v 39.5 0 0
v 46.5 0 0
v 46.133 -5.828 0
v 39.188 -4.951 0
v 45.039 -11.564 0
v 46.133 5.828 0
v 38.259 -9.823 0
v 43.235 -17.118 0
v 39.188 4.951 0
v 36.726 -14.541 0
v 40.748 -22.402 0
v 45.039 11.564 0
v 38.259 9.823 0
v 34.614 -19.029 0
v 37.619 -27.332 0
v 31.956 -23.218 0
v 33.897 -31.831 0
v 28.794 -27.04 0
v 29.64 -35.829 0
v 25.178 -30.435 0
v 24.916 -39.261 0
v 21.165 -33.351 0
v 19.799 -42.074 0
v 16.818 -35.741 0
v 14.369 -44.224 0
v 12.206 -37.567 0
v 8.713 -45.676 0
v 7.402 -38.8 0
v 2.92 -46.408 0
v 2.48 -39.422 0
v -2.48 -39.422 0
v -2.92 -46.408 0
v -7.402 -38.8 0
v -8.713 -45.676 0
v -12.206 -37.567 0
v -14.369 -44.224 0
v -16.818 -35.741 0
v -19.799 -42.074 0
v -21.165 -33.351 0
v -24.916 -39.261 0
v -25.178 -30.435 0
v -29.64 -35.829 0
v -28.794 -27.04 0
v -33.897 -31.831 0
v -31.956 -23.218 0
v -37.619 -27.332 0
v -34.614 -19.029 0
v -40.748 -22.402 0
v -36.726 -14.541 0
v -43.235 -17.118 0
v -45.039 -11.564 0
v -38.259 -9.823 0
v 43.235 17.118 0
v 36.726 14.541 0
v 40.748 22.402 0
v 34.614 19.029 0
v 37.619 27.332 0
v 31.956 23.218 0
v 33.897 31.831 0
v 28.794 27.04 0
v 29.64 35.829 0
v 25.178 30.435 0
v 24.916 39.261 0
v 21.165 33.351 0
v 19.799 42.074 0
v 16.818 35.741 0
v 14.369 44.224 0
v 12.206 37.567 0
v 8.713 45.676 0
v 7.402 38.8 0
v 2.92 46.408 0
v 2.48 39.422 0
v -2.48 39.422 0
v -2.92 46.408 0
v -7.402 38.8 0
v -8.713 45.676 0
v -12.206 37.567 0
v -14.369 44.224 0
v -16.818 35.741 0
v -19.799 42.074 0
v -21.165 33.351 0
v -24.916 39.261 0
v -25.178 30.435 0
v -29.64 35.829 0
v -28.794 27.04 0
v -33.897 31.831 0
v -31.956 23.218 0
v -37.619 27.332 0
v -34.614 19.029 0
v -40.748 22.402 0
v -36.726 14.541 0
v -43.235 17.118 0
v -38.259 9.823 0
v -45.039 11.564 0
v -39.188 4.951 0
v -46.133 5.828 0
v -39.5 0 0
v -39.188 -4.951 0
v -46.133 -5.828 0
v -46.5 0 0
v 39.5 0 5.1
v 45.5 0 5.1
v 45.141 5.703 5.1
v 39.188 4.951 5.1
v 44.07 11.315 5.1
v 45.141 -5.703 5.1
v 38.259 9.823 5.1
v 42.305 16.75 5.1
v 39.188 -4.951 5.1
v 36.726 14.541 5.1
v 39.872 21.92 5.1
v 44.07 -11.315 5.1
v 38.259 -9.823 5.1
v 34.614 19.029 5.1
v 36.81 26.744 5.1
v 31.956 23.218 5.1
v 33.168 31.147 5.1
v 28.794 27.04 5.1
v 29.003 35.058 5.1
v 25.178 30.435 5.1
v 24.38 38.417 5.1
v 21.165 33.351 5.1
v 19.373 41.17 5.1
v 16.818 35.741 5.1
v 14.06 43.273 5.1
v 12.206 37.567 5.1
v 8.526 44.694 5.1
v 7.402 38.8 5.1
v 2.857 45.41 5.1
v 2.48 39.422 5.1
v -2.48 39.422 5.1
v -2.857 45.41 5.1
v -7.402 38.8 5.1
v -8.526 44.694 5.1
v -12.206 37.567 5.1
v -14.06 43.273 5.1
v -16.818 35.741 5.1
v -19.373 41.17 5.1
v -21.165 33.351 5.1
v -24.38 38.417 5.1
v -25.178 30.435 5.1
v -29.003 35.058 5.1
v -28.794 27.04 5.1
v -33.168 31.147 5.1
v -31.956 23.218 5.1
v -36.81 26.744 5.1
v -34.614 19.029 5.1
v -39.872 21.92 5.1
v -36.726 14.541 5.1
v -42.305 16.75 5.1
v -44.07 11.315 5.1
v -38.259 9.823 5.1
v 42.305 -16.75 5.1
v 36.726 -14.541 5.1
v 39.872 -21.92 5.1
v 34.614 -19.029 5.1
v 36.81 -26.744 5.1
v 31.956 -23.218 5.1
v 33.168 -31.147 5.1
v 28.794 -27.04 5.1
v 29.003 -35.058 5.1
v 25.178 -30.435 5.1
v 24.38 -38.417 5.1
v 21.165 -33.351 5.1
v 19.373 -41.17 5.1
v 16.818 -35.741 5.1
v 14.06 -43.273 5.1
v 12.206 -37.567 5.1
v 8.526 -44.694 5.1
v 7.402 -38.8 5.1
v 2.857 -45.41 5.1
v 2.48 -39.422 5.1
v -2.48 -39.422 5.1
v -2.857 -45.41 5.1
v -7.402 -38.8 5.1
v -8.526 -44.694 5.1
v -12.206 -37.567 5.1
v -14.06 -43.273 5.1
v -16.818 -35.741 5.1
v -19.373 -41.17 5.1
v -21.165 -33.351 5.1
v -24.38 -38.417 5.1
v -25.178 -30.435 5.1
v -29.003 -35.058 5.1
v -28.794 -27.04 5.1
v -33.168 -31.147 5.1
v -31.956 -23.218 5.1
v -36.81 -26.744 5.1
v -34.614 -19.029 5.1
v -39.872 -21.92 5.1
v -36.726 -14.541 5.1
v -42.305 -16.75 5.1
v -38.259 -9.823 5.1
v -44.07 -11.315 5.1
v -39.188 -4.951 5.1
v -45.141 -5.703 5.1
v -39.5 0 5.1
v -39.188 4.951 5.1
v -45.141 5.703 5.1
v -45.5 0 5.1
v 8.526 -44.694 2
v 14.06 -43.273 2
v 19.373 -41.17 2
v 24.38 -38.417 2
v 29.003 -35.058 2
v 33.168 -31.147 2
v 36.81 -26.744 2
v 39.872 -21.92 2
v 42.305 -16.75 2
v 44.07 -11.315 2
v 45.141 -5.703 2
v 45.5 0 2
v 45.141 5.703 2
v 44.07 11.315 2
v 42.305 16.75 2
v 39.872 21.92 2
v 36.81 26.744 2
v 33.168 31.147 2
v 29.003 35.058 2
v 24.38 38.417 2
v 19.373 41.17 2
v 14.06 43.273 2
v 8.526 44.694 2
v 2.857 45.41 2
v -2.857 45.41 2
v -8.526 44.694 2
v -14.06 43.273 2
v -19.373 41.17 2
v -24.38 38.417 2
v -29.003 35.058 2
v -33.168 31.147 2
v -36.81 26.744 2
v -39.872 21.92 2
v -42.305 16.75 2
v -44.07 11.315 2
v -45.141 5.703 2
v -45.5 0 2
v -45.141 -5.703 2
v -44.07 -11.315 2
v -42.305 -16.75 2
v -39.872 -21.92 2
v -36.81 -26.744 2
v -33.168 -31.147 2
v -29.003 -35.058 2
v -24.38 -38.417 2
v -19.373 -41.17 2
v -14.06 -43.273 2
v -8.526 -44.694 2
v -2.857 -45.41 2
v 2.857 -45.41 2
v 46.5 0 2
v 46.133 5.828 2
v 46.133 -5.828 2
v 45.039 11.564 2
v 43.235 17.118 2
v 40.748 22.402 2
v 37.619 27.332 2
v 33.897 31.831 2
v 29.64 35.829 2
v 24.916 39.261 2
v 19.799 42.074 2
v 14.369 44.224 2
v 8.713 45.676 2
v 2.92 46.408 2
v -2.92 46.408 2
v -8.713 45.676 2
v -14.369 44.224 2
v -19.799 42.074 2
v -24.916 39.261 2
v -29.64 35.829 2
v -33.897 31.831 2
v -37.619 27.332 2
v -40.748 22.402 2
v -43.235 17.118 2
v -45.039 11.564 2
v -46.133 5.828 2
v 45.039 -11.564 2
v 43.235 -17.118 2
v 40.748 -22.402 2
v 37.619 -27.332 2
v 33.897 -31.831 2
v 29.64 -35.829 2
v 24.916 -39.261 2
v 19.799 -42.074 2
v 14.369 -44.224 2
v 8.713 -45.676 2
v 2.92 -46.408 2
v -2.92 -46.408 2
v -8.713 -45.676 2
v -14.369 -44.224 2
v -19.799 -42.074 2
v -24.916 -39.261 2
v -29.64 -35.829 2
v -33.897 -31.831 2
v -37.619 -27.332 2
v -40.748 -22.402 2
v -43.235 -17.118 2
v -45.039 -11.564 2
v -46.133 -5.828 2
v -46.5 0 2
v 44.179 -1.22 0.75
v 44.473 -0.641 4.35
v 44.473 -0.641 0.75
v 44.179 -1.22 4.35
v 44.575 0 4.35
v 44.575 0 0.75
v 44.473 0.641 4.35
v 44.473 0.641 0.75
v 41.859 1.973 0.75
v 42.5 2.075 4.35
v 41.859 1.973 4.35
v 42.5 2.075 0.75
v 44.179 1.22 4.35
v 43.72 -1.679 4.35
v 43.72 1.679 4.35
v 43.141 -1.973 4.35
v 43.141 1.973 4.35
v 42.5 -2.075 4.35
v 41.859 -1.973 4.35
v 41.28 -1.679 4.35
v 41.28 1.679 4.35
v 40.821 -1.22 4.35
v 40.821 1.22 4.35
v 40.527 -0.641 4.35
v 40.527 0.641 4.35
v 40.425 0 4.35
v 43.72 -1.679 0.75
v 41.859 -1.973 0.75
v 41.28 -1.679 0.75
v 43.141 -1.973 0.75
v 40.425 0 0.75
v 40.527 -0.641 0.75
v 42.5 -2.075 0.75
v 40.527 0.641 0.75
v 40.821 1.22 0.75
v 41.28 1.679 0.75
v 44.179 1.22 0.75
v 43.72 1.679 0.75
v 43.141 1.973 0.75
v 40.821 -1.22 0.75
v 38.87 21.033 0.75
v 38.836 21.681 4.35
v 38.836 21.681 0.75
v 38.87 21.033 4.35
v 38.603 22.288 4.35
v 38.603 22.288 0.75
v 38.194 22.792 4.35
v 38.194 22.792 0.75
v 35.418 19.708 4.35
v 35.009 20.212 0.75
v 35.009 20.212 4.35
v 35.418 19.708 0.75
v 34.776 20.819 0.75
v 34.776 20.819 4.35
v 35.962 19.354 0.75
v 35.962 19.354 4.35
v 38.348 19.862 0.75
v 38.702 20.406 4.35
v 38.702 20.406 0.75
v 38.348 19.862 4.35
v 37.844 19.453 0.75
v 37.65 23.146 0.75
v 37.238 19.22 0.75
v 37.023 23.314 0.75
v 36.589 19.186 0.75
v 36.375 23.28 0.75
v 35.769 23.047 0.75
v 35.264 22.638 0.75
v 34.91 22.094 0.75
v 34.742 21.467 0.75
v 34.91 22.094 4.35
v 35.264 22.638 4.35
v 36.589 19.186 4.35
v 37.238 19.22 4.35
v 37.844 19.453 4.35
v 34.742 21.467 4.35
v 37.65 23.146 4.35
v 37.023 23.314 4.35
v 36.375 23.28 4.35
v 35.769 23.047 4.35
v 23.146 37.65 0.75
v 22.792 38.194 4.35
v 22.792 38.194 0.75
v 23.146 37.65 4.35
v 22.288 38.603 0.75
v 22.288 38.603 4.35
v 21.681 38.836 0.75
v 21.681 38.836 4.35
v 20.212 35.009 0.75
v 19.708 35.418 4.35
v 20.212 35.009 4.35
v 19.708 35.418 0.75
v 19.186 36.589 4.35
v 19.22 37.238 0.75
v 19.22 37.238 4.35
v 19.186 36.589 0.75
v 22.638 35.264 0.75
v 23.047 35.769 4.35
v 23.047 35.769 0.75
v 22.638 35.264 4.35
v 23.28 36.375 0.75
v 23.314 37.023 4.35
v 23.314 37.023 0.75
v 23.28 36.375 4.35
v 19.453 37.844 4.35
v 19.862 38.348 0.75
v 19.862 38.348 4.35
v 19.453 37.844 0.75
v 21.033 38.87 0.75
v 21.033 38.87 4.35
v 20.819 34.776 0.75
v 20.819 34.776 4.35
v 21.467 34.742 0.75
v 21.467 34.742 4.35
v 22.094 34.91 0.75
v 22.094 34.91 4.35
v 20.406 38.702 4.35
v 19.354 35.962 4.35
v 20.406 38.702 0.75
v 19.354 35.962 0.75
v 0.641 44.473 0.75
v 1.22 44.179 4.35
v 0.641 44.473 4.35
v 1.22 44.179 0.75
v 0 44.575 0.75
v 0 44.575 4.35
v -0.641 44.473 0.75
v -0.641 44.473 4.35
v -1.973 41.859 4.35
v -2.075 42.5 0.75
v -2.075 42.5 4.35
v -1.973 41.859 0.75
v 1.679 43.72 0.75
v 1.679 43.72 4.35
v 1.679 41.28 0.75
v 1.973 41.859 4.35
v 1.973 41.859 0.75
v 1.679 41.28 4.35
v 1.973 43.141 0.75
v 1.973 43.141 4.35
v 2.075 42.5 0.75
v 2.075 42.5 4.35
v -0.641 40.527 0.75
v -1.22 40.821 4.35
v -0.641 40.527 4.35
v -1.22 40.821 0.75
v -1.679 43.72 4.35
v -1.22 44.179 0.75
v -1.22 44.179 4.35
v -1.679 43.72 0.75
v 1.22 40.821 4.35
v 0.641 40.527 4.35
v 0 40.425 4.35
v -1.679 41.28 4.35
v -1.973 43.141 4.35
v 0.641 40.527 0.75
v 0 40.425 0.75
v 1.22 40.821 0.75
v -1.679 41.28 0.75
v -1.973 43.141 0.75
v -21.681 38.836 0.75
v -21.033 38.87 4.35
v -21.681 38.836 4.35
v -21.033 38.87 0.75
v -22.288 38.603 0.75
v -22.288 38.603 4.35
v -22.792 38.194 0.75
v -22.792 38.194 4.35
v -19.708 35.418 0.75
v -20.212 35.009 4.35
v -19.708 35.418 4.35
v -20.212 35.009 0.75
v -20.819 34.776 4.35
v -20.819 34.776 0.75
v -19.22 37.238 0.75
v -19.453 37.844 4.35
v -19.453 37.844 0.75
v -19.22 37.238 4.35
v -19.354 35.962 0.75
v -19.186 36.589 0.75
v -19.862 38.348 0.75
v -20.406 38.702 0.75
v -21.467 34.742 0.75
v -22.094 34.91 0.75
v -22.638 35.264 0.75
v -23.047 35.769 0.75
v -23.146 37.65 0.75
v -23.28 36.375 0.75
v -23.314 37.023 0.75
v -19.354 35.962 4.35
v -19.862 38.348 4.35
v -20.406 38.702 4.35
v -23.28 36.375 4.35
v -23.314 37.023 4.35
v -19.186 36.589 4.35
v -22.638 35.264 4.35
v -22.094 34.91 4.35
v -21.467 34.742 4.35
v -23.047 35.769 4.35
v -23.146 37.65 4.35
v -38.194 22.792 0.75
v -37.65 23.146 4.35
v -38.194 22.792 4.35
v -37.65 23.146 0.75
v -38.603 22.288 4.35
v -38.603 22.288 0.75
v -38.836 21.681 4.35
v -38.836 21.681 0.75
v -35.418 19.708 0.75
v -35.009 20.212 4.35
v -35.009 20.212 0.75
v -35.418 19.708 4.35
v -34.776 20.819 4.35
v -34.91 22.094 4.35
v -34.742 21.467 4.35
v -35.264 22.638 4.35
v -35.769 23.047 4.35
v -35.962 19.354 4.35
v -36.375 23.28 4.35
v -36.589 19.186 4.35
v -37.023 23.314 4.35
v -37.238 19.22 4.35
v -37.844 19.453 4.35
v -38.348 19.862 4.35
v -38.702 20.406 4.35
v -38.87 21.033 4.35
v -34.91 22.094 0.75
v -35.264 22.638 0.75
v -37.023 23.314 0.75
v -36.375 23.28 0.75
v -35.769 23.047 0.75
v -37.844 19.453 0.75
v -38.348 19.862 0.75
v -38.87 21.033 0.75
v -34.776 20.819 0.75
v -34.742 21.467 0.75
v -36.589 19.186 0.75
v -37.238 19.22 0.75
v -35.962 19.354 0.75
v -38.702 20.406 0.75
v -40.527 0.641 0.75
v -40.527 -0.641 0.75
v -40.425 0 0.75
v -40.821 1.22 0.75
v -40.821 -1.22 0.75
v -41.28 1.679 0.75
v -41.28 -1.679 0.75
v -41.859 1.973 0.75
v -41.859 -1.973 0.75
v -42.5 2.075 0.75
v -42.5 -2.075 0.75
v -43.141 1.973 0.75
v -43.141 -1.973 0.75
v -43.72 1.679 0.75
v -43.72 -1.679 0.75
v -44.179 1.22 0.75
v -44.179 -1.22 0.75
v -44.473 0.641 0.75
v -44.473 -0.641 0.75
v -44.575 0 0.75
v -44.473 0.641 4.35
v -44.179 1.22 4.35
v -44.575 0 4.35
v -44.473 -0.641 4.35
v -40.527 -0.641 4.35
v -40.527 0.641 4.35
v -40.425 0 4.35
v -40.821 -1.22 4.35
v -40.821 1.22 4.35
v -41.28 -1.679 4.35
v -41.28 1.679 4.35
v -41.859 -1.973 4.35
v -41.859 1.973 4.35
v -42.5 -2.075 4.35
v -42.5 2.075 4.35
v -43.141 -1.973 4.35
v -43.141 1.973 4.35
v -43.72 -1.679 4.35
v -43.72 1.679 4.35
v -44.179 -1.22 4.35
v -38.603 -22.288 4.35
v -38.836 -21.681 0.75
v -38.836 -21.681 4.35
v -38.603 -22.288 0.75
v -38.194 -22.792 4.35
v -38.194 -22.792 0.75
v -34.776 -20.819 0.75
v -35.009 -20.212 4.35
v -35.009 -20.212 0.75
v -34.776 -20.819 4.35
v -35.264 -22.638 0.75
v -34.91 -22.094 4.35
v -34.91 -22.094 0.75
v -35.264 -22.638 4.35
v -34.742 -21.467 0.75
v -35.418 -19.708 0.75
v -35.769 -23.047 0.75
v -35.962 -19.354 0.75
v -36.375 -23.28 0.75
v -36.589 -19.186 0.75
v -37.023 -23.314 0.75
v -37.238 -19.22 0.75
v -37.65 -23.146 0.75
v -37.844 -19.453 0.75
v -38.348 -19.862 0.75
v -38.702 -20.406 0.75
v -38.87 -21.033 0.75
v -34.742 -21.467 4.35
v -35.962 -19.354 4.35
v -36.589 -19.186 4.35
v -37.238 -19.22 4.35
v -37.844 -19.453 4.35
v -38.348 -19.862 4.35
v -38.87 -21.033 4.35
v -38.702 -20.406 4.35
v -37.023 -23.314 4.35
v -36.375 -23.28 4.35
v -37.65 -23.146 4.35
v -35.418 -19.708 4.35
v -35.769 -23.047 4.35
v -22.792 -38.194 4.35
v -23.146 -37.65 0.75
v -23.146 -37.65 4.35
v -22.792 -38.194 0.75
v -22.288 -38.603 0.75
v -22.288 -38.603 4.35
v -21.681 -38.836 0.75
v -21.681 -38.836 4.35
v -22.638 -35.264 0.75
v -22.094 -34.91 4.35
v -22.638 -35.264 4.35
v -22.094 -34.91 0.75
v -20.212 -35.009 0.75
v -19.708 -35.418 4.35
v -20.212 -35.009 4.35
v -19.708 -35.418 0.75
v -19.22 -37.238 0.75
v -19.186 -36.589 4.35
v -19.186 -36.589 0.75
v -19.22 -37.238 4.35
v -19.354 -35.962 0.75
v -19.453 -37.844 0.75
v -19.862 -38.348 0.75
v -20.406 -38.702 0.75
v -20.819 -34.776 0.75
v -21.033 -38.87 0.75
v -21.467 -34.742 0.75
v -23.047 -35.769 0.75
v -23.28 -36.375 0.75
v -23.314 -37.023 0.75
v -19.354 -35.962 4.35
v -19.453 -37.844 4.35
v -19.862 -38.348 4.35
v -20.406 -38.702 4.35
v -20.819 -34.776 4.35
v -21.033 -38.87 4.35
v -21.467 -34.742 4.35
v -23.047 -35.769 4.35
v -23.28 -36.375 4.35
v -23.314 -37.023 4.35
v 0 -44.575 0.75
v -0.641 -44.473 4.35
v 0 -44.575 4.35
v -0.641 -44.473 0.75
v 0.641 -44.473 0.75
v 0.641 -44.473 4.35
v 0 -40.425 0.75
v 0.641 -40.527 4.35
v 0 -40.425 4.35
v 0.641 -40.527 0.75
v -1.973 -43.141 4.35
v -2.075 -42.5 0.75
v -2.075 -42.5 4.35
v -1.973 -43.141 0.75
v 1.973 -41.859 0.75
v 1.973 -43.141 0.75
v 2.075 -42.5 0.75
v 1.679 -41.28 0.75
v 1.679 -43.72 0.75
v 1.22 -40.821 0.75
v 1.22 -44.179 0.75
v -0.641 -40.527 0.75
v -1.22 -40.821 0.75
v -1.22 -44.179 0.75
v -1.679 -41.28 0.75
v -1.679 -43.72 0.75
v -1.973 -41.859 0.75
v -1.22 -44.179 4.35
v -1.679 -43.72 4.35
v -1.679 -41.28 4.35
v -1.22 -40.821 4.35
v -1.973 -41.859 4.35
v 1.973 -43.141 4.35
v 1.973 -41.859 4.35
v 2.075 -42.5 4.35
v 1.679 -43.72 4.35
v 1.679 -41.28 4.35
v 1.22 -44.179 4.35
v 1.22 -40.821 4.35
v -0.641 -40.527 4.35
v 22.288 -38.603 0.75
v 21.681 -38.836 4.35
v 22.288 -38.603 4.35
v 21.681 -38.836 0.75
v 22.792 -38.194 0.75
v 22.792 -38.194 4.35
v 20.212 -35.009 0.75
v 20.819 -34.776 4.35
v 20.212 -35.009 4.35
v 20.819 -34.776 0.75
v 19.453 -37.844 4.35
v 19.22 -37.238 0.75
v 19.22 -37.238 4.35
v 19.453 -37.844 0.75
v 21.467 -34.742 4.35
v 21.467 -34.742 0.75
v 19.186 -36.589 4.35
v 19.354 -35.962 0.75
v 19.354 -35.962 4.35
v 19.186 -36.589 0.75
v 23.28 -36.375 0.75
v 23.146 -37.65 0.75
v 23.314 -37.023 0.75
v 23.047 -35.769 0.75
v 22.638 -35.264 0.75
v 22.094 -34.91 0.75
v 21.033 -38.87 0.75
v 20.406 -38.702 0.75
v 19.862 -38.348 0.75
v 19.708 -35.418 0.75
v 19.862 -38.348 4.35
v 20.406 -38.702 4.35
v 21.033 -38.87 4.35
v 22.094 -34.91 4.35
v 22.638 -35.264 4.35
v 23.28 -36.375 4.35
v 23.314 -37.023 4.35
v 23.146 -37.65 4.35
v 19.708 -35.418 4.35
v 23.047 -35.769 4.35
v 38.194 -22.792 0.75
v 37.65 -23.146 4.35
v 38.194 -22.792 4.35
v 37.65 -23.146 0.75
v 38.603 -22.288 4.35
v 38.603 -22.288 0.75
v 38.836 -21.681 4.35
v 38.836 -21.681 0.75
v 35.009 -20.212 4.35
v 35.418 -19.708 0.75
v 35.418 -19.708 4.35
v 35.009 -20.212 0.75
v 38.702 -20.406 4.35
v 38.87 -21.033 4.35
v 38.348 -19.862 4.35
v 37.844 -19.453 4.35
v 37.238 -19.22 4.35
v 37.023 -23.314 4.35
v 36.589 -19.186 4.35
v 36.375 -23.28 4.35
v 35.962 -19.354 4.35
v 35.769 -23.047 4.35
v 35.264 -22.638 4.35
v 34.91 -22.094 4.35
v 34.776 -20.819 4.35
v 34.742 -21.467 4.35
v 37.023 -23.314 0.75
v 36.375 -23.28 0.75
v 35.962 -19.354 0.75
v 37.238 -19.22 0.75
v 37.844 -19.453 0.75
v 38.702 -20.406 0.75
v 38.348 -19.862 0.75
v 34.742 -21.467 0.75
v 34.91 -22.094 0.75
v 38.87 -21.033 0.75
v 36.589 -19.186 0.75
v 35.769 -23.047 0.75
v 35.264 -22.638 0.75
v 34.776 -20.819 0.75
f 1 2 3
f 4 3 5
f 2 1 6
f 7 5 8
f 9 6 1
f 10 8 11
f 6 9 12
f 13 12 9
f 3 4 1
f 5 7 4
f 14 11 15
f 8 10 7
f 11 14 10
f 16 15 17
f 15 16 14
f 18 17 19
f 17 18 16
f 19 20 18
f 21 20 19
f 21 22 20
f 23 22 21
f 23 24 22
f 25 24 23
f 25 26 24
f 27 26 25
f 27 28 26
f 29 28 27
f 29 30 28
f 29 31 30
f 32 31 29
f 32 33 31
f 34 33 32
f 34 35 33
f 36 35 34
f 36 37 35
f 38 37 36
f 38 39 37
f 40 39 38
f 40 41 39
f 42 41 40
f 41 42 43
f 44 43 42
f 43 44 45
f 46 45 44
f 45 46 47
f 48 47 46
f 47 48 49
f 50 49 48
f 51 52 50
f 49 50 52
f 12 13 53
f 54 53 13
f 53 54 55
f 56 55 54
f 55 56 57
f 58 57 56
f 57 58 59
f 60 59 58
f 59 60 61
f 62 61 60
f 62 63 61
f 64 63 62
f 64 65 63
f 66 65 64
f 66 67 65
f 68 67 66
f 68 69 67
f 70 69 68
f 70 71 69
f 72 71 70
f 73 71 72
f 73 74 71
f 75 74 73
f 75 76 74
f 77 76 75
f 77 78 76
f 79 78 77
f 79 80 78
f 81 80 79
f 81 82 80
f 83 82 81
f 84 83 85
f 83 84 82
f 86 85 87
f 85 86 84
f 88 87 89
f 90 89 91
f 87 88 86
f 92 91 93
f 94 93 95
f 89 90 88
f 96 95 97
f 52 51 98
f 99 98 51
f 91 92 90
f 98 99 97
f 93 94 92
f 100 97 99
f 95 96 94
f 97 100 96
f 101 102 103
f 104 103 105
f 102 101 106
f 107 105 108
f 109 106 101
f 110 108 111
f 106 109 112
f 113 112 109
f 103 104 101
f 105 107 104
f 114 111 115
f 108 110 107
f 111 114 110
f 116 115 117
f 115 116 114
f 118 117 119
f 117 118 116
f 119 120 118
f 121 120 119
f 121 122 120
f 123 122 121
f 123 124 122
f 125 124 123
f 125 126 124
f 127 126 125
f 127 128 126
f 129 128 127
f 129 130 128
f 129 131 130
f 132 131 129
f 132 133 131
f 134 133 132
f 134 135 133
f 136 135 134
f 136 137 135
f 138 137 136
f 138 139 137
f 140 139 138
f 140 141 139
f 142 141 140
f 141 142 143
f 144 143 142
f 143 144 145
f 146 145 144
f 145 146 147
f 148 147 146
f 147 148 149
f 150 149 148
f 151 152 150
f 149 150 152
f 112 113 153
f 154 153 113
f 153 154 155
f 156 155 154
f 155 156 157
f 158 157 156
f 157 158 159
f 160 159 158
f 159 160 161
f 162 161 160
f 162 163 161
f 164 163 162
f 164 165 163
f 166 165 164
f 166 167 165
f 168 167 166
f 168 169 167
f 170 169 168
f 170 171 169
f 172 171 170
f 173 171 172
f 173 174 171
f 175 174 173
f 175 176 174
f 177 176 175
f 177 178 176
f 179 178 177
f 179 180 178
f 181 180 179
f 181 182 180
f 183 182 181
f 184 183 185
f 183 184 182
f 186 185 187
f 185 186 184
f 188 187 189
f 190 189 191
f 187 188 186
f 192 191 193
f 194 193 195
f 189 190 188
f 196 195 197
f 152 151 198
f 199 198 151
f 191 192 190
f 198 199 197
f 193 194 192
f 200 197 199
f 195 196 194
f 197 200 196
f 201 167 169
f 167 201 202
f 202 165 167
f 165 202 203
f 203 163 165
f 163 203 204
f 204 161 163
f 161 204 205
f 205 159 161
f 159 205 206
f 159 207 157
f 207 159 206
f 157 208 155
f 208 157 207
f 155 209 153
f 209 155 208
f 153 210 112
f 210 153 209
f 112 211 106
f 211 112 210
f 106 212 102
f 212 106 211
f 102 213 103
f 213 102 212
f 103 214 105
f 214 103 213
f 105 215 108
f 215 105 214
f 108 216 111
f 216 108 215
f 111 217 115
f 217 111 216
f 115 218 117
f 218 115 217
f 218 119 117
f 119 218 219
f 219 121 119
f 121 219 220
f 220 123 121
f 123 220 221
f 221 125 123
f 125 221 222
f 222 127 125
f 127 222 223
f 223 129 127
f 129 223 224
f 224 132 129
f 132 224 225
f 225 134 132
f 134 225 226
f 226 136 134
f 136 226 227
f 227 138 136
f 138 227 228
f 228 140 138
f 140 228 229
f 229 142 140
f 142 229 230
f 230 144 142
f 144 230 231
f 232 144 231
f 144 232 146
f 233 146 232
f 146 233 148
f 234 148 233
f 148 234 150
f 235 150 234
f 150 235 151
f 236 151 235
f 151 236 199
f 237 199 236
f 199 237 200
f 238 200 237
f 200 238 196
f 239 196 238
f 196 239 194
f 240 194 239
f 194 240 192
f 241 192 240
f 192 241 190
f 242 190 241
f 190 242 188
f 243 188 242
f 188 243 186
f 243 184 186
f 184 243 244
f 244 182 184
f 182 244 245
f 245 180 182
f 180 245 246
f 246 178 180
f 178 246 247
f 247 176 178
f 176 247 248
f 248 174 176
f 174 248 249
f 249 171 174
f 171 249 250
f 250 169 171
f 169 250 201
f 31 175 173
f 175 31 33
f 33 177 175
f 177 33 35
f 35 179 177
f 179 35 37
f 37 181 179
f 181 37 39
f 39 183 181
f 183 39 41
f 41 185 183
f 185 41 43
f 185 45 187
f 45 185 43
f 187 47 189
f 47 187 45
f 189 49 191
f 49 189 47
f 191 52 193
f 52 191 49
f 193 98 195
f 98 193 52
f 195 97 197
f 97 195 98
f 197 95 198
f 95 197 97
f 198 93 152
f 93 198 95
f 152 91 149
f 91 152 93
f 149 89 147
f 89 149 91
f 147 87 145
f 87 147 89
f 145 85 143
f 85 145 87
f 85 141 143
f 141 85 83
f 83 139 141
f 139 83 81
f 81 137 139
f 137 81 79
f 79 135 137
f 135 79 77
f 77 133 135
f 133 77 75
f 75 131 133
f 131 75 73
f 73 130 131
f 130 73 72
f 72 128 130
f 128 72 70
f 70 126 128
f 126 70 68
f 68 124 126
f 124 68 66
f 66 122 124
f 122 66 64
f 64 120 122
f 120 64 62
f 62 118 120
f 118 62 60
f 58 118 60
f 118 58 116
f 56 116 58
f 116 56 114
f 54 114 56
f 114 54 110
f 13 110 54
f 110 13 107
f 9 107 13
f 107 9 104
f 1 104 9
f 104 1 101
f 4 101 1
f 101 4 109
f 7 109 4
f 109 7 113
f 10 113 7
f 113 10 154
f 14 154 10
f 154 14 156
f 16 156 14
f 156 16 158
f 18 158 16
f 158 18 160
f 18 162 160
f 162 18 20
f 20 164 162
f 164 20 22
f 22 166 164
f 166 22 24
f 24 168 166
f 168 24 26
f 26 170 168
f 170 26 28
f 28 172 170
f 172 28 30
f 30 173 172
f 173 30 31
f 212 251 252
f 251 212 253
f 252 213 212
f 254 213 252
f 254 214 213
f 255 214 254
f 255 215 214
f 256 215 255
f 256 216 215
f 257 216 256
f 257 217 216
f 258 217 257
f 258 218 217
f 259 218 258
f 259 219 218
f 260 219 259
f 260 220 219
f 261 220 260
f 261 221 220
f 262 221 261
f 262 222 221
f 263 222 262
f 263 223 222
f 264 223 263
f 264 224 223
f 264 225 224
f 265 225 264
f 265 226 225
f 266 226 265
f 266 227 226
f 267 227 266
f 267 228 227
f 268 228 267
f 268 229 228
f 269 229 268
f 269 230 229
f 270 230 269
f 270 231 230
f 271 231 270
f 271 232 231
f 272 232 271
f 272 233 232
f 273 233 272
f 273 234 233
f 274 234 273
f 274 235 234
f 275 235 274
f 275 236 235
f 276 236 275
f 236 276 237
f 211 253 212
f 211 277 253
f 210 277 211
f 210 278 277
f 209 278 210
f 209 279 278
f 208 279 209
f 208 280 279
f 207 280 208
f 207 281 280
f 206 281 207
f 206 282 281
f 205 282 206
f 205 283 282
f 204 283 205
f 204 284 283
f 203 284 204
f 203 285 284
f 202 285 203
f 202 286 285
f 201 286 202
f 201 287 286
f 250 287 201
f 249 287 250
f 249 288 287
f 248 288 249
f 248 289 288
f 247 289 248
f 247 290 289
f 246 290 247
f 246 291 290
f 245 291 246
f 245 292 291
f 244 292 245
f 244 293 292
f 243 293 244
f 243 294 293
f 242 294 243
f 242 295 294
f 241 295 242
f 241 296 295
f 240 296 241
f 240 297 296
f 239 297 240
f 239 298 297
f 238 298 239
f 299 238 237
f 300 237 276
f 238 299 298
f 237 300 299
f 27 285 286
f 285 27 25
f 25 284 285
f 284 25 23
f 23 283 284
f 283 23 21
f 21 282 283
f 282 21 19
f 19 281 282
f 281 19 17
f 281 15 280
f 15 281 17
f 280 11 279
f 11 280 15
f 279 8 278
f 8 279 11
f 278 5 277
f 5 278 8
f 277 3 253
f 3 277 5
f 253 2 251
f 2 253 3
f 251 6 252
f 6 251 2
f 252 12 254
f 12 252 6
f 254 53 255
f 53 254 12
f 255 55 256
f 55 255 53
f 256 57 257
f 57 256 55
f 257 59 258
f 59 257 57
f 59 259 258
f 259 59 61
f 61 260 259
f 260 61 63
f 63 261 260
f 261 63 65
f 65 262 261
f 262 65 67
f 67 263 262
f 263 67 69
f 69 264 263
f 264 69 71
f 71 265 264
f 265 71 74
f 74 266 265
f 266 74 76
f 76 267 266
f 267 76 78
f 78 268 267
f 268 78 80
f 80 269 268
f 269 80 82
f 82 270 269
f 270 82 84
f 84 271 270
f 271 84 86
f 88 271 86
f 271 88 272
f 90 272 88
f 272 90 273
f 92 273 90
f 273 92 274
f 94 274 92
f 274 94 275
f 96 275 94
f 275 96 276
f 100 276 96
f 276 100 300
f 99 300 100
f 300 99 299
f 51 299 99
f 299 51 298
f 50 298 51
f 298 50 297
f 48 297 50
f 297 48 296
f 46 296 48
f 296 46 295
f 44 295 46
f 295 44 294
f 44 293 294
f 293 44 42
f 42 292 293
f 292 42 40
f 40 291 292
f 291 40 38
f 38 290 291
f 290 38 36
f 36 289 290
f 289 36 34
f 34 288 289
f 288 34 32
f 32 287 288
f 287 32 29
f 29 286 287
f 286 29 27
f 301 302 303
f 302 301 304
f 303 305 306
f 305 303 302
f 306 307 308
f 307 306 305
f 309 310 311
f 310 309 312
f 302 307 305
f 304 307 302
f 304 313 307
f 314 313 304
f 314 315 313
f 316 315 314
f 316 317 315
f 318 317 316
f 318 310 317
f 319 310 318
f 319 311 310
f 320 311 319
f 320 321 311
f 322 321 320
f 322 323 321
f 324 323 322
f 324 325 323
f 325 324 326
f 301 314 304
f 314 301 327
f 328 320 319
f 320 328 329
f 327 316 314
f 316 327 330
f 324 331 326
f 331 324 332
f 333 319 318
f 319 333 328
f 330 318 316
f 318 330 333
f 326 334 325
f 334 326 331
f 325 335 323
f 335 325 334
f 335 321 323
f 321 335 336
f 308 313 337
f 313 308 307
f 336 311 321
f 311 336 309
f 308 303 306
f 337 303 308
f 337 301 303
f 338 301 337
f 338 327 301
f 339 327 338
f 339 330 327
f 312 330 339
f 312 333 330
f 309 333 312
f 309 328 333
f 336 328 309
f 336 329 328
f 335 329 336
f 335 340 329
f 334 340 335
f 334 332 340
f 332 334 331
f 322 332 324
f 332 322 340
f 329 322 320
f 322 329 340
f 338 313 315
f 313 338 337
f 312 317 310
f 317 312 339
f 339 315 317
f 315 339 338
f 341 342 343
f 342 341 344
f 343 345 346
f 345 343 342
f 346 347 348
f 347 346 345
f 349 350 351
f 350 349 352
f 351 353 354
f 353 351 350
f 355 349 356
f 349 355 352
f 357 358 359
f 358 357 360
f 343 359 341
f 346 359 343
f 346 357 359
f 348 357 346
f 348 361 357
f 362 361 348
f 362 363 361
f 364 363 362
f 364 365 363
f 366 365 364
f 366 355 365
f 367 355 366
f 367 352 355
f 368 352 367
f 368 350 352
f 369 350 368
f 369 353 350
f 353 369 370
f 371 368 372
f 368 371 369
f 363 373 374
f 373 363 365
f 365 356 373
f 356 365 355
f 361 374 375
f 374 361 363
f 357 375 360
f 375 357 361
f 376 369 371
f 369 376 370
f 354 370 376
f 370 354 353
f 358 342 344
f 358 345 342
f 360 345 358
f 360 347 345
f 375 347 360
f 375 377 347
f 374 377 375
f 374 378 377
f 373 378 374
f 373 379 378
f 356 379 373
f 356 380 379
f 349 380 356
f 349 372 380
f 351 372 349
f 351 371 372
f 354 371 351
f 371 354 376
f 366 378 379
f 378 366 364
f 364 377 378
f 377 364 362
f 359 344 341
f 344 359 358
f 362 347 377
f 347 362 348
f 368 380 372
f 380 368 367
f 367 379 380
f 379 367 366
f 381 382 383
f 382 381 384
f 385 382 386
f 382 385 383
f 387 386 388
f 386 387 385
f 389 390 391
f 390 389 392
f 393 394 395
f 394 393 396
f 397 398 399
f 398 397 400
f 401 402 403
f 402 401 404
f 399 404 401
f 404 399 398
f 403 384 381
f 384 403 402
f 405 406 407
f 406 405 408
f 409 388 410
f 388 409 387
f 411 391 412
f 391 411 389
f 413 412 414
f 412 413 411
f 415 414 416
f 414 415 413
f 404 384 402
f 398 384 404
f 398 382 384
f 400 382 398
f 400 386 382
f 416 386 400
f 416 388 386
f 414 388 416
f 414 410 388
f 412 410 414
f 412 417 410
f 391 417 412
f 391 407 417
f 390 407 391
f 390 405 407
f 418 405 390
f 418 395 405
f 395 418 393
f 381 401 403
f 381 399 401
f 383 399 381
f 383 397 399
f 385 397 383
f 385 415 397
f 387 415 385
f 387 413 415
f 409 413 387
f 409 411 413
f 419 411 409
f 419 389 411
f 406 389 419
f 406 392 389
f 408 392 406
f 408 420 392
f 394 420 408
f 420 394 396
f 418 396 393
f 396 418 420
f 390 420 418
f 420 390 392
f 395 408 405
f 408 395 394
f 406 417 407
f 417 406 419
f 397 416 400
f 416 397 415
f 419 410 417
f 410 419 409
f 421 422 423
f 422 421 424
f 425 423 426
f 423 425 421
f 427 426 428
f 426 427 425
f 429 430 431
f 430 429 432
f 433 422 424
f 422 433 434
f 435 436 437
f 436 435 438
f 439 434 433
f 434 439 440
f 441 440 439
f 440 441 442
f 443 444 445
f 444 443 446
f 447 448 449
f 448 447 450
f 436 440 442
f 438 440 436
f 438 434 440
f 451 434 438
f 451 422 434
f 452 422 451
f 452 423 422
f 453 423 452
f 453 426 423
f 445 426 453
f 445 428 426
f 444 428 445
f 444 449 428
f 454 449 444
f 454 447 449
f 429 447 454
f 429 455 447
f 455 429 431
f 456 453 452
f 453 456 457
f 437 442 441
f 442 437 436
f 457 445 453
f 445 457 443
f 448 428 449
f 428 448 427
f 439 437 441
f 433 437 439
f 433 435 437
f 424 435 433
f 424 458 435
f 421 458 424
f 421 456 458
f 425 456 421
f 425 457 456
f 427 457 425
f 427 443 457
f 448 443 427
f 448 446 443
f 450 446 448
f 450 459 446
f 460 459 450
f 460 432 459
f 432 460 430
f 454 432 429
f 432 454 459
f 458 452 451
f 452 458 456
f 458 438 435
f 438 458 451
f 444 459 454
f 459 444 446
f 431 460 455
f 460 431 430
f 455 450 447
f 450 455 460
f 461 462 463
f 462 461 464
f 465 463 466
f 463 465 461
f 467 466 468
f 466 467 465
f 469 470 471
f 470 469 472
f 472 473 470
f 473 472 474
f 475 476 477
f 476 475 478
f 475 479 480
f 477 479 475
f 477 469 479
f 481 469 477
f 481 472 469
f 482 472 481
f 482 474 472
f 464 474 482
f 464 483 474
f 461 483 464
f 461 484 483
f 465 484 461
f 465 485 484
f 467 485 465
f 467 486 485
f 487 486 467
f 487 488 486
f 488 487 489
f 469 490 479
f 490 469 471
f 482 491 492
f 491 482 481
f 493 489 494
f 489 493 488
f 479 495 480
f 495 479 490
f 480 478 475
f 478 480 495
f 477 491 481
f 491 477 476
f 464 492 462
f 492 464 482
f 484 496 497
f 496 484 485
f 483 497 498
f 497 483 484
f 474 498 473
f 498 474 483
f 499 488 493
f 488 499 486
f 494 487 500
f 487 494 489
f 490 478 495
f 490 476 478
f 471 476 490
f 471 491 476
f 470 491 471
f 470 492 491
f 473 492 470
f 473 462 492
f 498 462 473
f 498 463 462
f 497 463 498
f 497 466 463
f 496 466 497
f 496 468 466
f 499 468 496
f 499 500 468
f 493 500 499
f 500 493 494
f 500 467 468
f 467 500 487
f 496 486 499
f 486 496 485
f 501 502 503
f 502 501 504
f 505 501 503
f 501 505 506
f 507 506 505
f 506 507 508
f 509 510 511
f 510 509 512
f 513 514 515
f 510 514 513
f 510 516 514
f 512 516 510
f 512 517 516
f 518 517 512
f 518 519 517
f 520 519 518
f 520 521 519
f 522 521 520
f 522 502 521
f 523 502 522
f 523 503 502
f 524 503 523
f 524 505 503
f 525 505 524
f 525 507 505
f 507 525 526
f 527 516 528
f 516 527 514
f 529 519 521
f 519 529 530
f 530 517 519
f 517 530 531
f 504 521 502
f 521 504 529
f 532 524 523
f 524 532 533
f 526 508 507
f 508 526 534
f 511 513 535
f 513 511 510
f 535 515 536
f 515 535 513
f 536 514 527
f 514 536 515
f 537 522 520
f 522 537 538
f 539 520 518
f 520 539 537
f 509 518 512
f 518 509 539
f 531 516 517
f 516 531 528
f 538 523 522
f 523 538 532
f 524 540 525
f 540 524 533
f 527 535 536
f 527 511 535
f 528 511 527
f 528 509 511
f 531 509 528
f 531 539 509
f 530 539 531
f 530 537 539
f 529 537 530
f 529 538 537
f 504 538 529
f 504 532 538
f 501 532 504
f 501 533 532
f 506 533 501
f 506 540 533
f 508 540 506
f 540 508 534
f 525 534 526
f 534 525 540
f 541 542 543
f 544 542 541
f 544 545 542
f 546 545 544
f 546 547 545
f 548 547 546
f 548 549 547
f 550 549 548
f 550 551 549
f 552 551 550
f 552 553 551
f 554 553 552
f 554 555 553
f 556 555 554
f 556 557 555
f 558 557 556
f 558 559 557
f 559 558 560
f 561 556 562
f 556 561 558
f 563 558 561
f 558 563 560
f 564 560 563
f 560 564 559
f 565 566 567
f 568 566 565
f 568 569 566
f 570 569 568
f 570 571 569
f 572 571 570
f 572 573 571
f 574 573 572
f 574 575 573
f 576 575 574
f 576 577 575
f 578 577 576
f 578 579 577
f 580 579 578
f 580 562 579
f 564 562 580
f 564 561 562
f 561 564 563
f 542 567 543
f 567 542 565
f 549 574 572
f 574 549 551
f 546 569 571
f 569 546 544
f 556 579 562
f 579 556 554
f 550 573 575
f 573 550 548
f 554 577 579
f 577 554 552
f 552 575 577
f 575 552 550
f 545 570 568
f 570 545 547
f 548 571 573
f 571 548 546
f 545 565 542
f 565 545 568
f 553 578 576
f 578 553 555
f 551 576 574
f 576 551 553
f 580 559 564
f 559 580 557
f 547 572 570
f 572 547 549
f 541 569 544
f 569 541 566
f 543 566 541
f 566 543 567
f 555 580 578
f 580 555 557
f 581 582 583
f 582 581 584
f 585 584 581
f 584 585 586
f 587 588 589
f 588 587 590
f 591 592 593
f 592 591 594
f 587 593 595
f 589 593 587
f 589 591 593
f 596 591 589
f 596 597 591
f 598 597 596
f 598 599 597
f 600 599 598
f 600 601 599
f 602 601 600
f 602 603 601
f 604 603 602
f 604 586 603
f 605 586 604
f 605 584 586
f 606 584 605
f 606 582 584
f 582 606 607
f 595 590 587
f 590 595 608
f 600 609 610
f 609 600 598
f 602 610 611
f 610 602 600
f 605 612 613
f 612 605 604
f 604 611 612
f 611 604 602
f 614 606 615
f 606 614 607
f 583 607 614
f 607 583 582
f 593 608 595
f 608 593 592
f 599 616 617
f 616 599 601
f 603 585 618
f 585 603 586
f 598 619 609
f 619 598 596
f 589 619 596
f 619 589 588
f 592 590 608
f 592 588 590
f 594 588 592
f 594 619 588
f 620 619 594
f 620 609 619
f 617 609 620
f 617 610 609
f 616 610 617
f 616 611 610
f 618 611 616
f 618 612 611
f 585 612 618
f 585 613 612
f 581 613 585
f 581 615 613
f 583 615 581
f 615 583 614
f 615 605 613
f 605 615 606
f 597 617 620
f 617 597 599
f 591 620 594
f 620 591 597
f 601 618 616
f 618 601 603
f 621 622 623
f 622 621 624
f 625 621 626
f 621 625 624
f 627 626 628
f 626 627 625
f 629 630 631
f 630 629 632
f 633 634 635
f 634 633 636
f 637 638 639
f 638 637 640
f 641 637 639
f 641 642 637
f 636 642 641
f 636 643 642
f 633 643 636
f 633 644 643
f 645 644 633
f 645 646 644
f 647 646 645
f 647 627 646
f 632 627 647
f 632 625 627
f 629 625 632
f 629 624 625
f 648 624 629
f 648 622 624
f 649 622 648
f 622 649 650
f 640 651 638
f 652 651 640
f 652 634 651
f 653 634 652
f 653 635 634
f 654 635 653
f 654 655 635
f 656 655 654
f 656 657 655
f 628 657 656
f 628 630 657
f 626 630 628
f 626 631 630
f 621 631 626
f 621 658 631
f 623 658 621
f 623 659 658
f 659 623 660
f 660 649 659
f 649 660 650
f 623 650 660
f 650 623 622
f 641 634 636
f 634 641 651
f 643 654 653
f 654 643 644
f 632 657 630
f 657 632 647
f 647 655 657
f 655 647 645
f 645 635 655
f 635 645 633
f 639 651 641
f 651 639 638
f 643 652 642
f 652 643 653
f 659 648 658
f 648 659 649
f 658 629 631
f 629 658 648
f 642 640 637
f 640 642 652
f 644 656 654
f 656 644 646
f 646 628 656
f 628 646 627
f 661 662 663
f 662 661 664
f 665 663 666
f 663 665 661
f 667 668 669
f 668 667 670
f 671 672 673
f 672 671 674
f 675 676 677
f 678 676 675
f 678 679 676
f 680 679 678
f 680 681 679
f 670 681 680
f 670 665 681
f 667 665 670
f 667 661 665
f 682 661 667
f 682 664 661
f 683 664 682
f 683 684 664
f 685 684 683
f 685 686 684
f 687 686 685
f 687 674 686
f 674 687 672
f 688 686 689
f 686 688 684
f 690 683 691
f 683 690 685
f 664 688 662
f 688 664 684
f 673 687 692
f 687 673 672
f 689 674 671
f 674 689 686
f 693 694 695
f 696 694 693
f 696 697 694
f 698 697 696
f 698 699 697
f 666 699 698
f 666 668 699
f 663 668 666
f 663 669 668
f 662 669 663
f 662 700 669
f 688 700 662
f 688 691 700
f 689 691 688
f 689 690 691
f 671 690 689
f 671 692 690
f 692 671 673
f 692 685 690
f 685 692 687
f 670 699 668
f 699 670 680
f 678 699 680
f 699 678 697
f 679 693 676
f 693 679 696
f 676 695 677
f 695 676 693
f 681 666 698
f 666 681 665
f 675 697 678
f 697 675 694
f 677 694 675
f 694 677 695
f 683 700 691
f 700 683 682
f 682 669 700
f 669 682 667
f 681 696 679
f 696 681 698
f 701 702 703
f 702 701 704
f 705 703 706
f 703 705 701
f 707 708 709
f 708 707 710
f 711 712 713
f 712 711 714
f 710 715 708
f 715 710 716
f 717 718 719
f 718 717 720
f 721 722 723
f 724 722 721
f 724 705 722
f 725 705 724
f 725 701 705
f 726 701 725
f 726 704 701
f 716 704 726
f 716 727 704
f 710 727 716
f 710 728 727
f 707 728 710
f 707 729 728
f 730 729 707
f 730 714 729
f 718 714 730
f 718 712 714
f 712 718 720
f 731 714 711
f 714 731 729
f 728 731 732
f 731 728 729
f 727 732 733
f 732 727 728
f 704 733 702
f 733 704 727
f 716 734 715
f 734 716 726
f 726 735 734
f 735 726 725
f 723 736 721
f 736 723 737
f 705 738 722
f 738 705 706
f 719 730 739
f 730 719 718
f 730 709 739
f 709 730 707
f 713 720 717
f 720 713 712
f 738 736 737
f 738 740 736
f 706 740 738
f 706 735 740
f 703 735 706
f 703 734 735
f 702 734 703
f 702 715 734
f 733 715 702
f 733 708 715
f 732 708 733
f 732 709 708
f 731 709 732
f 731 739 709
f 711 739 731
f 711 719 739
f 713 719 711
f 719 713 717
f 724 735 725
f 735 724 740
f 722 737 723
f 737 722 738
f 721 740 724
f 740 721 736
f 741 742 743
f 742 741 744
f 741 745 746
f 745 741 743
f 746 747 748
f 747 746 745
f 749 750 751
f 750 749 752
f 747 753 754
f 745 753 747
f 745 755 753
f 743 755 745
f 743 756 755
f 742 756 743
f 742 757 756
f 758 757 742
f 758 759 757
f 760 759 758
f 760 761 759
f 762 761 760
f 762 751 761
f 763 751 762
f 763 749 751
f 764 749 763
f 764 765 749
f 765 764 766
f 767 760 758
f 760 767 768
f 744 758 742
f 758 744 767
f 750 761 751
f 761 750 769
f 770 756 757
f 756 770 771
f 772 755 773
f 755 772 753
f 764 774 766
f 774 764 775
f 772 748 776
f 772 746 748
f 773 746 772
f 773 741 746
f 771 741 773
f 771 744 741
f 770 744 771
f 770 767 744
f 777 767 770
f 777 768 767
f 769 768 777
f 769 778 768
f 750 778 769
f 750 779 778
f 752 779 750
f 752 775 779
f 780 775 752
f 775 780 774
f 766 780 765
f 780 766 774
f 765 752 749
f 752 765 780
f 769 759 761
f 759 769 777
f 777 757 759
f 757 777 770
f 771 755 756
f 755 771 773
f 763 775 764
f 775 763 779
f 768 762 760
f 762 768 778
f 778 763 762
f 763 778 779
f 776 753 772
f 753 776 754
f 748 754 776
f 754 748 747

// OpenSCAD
// file: ocf-gel-modules.scad
// Assembly
module asm() {
    difference() {
        union() {
            ring();
            lip();
        }
        color("red") mag_rings();
    }
}

// Main body of part
module ring() {
    linear_extrude(depth) {
        difference() {
            circle(r=(outer_dia / 2));
            circle(r=(inner_dia / 2));
        }
    }
}

// Wider lip at the top for easier removal
module lip() {
    linear_extrude(lip_h) {
        difference() {
            circle(r=(outer_dia + lip_w) / 2);
            circle(r=(inner_dia / 2));
        }
    }
}

// Wrapper for magnet inserts
module mag_rings() {
    //top magnet ring (closest to build plate)
    mag_inserts(mag_bury);
    // bottom magnet ring (furthest from build plate)
    if (depth > 15) {
        mag_inserts(depth - mag_hole_depth);
    }
}

// Subtractive circular array of magnet inserts
module mag_inserts(zpos) {
    for (i = [0:1:mag_count]) {
        rotate([0,0,mag_degrees * i]) {
            translate([ring_center,0,zpos]) {
                linear_extrude(mag_depth) {
                    circle(r=(mag_dia / 2), $fn=20);
                }
            }
        }
    }
}
// main file
include <ocf-gel-modules.scad>

//// USER VARIABLES ////
//// All values in mm ////

outer_dia = 91; // Outer Diameter
inner_dia = 79; // Inner Diameter
$fn = 50;       // Polygon count of circles

mag_dia = 4.15;    // Diameter dimension of magnets
mag_depth = 3.60;  // Depth (height) dimenstion of magnets
mag_bury = 0.75;   // How deep to bury the magnets in the part
mag_count = 12; // Number of magnets around circumference of ring

depth = mag_depth + (2 * mag_bury);     // Total depth (height) of ring

lip_w = 2;  // Width of handle/lip for removal
lip_h = 2;  // Height of lip

//// COMPUTED VARIABLES - You shouldn't need to touch these ////

mag_hole_depth = mag_depth + mag_bury;
mag_degrees = 360 / mag_count;
ring_center = (inner_dia + ((outer_dia - inner_dia) / 2)) / 2;

//// ASSEMBLY - Now render the part with these values ////

test_fit = false;

if (test_fit) {
    // Print a small arc to test print-in settings
    intersection() {
        translate([0,-10,0])
            cube(size=[outer_dia,40,depth]);
        asm();
    }
} else {
    asm();
}
